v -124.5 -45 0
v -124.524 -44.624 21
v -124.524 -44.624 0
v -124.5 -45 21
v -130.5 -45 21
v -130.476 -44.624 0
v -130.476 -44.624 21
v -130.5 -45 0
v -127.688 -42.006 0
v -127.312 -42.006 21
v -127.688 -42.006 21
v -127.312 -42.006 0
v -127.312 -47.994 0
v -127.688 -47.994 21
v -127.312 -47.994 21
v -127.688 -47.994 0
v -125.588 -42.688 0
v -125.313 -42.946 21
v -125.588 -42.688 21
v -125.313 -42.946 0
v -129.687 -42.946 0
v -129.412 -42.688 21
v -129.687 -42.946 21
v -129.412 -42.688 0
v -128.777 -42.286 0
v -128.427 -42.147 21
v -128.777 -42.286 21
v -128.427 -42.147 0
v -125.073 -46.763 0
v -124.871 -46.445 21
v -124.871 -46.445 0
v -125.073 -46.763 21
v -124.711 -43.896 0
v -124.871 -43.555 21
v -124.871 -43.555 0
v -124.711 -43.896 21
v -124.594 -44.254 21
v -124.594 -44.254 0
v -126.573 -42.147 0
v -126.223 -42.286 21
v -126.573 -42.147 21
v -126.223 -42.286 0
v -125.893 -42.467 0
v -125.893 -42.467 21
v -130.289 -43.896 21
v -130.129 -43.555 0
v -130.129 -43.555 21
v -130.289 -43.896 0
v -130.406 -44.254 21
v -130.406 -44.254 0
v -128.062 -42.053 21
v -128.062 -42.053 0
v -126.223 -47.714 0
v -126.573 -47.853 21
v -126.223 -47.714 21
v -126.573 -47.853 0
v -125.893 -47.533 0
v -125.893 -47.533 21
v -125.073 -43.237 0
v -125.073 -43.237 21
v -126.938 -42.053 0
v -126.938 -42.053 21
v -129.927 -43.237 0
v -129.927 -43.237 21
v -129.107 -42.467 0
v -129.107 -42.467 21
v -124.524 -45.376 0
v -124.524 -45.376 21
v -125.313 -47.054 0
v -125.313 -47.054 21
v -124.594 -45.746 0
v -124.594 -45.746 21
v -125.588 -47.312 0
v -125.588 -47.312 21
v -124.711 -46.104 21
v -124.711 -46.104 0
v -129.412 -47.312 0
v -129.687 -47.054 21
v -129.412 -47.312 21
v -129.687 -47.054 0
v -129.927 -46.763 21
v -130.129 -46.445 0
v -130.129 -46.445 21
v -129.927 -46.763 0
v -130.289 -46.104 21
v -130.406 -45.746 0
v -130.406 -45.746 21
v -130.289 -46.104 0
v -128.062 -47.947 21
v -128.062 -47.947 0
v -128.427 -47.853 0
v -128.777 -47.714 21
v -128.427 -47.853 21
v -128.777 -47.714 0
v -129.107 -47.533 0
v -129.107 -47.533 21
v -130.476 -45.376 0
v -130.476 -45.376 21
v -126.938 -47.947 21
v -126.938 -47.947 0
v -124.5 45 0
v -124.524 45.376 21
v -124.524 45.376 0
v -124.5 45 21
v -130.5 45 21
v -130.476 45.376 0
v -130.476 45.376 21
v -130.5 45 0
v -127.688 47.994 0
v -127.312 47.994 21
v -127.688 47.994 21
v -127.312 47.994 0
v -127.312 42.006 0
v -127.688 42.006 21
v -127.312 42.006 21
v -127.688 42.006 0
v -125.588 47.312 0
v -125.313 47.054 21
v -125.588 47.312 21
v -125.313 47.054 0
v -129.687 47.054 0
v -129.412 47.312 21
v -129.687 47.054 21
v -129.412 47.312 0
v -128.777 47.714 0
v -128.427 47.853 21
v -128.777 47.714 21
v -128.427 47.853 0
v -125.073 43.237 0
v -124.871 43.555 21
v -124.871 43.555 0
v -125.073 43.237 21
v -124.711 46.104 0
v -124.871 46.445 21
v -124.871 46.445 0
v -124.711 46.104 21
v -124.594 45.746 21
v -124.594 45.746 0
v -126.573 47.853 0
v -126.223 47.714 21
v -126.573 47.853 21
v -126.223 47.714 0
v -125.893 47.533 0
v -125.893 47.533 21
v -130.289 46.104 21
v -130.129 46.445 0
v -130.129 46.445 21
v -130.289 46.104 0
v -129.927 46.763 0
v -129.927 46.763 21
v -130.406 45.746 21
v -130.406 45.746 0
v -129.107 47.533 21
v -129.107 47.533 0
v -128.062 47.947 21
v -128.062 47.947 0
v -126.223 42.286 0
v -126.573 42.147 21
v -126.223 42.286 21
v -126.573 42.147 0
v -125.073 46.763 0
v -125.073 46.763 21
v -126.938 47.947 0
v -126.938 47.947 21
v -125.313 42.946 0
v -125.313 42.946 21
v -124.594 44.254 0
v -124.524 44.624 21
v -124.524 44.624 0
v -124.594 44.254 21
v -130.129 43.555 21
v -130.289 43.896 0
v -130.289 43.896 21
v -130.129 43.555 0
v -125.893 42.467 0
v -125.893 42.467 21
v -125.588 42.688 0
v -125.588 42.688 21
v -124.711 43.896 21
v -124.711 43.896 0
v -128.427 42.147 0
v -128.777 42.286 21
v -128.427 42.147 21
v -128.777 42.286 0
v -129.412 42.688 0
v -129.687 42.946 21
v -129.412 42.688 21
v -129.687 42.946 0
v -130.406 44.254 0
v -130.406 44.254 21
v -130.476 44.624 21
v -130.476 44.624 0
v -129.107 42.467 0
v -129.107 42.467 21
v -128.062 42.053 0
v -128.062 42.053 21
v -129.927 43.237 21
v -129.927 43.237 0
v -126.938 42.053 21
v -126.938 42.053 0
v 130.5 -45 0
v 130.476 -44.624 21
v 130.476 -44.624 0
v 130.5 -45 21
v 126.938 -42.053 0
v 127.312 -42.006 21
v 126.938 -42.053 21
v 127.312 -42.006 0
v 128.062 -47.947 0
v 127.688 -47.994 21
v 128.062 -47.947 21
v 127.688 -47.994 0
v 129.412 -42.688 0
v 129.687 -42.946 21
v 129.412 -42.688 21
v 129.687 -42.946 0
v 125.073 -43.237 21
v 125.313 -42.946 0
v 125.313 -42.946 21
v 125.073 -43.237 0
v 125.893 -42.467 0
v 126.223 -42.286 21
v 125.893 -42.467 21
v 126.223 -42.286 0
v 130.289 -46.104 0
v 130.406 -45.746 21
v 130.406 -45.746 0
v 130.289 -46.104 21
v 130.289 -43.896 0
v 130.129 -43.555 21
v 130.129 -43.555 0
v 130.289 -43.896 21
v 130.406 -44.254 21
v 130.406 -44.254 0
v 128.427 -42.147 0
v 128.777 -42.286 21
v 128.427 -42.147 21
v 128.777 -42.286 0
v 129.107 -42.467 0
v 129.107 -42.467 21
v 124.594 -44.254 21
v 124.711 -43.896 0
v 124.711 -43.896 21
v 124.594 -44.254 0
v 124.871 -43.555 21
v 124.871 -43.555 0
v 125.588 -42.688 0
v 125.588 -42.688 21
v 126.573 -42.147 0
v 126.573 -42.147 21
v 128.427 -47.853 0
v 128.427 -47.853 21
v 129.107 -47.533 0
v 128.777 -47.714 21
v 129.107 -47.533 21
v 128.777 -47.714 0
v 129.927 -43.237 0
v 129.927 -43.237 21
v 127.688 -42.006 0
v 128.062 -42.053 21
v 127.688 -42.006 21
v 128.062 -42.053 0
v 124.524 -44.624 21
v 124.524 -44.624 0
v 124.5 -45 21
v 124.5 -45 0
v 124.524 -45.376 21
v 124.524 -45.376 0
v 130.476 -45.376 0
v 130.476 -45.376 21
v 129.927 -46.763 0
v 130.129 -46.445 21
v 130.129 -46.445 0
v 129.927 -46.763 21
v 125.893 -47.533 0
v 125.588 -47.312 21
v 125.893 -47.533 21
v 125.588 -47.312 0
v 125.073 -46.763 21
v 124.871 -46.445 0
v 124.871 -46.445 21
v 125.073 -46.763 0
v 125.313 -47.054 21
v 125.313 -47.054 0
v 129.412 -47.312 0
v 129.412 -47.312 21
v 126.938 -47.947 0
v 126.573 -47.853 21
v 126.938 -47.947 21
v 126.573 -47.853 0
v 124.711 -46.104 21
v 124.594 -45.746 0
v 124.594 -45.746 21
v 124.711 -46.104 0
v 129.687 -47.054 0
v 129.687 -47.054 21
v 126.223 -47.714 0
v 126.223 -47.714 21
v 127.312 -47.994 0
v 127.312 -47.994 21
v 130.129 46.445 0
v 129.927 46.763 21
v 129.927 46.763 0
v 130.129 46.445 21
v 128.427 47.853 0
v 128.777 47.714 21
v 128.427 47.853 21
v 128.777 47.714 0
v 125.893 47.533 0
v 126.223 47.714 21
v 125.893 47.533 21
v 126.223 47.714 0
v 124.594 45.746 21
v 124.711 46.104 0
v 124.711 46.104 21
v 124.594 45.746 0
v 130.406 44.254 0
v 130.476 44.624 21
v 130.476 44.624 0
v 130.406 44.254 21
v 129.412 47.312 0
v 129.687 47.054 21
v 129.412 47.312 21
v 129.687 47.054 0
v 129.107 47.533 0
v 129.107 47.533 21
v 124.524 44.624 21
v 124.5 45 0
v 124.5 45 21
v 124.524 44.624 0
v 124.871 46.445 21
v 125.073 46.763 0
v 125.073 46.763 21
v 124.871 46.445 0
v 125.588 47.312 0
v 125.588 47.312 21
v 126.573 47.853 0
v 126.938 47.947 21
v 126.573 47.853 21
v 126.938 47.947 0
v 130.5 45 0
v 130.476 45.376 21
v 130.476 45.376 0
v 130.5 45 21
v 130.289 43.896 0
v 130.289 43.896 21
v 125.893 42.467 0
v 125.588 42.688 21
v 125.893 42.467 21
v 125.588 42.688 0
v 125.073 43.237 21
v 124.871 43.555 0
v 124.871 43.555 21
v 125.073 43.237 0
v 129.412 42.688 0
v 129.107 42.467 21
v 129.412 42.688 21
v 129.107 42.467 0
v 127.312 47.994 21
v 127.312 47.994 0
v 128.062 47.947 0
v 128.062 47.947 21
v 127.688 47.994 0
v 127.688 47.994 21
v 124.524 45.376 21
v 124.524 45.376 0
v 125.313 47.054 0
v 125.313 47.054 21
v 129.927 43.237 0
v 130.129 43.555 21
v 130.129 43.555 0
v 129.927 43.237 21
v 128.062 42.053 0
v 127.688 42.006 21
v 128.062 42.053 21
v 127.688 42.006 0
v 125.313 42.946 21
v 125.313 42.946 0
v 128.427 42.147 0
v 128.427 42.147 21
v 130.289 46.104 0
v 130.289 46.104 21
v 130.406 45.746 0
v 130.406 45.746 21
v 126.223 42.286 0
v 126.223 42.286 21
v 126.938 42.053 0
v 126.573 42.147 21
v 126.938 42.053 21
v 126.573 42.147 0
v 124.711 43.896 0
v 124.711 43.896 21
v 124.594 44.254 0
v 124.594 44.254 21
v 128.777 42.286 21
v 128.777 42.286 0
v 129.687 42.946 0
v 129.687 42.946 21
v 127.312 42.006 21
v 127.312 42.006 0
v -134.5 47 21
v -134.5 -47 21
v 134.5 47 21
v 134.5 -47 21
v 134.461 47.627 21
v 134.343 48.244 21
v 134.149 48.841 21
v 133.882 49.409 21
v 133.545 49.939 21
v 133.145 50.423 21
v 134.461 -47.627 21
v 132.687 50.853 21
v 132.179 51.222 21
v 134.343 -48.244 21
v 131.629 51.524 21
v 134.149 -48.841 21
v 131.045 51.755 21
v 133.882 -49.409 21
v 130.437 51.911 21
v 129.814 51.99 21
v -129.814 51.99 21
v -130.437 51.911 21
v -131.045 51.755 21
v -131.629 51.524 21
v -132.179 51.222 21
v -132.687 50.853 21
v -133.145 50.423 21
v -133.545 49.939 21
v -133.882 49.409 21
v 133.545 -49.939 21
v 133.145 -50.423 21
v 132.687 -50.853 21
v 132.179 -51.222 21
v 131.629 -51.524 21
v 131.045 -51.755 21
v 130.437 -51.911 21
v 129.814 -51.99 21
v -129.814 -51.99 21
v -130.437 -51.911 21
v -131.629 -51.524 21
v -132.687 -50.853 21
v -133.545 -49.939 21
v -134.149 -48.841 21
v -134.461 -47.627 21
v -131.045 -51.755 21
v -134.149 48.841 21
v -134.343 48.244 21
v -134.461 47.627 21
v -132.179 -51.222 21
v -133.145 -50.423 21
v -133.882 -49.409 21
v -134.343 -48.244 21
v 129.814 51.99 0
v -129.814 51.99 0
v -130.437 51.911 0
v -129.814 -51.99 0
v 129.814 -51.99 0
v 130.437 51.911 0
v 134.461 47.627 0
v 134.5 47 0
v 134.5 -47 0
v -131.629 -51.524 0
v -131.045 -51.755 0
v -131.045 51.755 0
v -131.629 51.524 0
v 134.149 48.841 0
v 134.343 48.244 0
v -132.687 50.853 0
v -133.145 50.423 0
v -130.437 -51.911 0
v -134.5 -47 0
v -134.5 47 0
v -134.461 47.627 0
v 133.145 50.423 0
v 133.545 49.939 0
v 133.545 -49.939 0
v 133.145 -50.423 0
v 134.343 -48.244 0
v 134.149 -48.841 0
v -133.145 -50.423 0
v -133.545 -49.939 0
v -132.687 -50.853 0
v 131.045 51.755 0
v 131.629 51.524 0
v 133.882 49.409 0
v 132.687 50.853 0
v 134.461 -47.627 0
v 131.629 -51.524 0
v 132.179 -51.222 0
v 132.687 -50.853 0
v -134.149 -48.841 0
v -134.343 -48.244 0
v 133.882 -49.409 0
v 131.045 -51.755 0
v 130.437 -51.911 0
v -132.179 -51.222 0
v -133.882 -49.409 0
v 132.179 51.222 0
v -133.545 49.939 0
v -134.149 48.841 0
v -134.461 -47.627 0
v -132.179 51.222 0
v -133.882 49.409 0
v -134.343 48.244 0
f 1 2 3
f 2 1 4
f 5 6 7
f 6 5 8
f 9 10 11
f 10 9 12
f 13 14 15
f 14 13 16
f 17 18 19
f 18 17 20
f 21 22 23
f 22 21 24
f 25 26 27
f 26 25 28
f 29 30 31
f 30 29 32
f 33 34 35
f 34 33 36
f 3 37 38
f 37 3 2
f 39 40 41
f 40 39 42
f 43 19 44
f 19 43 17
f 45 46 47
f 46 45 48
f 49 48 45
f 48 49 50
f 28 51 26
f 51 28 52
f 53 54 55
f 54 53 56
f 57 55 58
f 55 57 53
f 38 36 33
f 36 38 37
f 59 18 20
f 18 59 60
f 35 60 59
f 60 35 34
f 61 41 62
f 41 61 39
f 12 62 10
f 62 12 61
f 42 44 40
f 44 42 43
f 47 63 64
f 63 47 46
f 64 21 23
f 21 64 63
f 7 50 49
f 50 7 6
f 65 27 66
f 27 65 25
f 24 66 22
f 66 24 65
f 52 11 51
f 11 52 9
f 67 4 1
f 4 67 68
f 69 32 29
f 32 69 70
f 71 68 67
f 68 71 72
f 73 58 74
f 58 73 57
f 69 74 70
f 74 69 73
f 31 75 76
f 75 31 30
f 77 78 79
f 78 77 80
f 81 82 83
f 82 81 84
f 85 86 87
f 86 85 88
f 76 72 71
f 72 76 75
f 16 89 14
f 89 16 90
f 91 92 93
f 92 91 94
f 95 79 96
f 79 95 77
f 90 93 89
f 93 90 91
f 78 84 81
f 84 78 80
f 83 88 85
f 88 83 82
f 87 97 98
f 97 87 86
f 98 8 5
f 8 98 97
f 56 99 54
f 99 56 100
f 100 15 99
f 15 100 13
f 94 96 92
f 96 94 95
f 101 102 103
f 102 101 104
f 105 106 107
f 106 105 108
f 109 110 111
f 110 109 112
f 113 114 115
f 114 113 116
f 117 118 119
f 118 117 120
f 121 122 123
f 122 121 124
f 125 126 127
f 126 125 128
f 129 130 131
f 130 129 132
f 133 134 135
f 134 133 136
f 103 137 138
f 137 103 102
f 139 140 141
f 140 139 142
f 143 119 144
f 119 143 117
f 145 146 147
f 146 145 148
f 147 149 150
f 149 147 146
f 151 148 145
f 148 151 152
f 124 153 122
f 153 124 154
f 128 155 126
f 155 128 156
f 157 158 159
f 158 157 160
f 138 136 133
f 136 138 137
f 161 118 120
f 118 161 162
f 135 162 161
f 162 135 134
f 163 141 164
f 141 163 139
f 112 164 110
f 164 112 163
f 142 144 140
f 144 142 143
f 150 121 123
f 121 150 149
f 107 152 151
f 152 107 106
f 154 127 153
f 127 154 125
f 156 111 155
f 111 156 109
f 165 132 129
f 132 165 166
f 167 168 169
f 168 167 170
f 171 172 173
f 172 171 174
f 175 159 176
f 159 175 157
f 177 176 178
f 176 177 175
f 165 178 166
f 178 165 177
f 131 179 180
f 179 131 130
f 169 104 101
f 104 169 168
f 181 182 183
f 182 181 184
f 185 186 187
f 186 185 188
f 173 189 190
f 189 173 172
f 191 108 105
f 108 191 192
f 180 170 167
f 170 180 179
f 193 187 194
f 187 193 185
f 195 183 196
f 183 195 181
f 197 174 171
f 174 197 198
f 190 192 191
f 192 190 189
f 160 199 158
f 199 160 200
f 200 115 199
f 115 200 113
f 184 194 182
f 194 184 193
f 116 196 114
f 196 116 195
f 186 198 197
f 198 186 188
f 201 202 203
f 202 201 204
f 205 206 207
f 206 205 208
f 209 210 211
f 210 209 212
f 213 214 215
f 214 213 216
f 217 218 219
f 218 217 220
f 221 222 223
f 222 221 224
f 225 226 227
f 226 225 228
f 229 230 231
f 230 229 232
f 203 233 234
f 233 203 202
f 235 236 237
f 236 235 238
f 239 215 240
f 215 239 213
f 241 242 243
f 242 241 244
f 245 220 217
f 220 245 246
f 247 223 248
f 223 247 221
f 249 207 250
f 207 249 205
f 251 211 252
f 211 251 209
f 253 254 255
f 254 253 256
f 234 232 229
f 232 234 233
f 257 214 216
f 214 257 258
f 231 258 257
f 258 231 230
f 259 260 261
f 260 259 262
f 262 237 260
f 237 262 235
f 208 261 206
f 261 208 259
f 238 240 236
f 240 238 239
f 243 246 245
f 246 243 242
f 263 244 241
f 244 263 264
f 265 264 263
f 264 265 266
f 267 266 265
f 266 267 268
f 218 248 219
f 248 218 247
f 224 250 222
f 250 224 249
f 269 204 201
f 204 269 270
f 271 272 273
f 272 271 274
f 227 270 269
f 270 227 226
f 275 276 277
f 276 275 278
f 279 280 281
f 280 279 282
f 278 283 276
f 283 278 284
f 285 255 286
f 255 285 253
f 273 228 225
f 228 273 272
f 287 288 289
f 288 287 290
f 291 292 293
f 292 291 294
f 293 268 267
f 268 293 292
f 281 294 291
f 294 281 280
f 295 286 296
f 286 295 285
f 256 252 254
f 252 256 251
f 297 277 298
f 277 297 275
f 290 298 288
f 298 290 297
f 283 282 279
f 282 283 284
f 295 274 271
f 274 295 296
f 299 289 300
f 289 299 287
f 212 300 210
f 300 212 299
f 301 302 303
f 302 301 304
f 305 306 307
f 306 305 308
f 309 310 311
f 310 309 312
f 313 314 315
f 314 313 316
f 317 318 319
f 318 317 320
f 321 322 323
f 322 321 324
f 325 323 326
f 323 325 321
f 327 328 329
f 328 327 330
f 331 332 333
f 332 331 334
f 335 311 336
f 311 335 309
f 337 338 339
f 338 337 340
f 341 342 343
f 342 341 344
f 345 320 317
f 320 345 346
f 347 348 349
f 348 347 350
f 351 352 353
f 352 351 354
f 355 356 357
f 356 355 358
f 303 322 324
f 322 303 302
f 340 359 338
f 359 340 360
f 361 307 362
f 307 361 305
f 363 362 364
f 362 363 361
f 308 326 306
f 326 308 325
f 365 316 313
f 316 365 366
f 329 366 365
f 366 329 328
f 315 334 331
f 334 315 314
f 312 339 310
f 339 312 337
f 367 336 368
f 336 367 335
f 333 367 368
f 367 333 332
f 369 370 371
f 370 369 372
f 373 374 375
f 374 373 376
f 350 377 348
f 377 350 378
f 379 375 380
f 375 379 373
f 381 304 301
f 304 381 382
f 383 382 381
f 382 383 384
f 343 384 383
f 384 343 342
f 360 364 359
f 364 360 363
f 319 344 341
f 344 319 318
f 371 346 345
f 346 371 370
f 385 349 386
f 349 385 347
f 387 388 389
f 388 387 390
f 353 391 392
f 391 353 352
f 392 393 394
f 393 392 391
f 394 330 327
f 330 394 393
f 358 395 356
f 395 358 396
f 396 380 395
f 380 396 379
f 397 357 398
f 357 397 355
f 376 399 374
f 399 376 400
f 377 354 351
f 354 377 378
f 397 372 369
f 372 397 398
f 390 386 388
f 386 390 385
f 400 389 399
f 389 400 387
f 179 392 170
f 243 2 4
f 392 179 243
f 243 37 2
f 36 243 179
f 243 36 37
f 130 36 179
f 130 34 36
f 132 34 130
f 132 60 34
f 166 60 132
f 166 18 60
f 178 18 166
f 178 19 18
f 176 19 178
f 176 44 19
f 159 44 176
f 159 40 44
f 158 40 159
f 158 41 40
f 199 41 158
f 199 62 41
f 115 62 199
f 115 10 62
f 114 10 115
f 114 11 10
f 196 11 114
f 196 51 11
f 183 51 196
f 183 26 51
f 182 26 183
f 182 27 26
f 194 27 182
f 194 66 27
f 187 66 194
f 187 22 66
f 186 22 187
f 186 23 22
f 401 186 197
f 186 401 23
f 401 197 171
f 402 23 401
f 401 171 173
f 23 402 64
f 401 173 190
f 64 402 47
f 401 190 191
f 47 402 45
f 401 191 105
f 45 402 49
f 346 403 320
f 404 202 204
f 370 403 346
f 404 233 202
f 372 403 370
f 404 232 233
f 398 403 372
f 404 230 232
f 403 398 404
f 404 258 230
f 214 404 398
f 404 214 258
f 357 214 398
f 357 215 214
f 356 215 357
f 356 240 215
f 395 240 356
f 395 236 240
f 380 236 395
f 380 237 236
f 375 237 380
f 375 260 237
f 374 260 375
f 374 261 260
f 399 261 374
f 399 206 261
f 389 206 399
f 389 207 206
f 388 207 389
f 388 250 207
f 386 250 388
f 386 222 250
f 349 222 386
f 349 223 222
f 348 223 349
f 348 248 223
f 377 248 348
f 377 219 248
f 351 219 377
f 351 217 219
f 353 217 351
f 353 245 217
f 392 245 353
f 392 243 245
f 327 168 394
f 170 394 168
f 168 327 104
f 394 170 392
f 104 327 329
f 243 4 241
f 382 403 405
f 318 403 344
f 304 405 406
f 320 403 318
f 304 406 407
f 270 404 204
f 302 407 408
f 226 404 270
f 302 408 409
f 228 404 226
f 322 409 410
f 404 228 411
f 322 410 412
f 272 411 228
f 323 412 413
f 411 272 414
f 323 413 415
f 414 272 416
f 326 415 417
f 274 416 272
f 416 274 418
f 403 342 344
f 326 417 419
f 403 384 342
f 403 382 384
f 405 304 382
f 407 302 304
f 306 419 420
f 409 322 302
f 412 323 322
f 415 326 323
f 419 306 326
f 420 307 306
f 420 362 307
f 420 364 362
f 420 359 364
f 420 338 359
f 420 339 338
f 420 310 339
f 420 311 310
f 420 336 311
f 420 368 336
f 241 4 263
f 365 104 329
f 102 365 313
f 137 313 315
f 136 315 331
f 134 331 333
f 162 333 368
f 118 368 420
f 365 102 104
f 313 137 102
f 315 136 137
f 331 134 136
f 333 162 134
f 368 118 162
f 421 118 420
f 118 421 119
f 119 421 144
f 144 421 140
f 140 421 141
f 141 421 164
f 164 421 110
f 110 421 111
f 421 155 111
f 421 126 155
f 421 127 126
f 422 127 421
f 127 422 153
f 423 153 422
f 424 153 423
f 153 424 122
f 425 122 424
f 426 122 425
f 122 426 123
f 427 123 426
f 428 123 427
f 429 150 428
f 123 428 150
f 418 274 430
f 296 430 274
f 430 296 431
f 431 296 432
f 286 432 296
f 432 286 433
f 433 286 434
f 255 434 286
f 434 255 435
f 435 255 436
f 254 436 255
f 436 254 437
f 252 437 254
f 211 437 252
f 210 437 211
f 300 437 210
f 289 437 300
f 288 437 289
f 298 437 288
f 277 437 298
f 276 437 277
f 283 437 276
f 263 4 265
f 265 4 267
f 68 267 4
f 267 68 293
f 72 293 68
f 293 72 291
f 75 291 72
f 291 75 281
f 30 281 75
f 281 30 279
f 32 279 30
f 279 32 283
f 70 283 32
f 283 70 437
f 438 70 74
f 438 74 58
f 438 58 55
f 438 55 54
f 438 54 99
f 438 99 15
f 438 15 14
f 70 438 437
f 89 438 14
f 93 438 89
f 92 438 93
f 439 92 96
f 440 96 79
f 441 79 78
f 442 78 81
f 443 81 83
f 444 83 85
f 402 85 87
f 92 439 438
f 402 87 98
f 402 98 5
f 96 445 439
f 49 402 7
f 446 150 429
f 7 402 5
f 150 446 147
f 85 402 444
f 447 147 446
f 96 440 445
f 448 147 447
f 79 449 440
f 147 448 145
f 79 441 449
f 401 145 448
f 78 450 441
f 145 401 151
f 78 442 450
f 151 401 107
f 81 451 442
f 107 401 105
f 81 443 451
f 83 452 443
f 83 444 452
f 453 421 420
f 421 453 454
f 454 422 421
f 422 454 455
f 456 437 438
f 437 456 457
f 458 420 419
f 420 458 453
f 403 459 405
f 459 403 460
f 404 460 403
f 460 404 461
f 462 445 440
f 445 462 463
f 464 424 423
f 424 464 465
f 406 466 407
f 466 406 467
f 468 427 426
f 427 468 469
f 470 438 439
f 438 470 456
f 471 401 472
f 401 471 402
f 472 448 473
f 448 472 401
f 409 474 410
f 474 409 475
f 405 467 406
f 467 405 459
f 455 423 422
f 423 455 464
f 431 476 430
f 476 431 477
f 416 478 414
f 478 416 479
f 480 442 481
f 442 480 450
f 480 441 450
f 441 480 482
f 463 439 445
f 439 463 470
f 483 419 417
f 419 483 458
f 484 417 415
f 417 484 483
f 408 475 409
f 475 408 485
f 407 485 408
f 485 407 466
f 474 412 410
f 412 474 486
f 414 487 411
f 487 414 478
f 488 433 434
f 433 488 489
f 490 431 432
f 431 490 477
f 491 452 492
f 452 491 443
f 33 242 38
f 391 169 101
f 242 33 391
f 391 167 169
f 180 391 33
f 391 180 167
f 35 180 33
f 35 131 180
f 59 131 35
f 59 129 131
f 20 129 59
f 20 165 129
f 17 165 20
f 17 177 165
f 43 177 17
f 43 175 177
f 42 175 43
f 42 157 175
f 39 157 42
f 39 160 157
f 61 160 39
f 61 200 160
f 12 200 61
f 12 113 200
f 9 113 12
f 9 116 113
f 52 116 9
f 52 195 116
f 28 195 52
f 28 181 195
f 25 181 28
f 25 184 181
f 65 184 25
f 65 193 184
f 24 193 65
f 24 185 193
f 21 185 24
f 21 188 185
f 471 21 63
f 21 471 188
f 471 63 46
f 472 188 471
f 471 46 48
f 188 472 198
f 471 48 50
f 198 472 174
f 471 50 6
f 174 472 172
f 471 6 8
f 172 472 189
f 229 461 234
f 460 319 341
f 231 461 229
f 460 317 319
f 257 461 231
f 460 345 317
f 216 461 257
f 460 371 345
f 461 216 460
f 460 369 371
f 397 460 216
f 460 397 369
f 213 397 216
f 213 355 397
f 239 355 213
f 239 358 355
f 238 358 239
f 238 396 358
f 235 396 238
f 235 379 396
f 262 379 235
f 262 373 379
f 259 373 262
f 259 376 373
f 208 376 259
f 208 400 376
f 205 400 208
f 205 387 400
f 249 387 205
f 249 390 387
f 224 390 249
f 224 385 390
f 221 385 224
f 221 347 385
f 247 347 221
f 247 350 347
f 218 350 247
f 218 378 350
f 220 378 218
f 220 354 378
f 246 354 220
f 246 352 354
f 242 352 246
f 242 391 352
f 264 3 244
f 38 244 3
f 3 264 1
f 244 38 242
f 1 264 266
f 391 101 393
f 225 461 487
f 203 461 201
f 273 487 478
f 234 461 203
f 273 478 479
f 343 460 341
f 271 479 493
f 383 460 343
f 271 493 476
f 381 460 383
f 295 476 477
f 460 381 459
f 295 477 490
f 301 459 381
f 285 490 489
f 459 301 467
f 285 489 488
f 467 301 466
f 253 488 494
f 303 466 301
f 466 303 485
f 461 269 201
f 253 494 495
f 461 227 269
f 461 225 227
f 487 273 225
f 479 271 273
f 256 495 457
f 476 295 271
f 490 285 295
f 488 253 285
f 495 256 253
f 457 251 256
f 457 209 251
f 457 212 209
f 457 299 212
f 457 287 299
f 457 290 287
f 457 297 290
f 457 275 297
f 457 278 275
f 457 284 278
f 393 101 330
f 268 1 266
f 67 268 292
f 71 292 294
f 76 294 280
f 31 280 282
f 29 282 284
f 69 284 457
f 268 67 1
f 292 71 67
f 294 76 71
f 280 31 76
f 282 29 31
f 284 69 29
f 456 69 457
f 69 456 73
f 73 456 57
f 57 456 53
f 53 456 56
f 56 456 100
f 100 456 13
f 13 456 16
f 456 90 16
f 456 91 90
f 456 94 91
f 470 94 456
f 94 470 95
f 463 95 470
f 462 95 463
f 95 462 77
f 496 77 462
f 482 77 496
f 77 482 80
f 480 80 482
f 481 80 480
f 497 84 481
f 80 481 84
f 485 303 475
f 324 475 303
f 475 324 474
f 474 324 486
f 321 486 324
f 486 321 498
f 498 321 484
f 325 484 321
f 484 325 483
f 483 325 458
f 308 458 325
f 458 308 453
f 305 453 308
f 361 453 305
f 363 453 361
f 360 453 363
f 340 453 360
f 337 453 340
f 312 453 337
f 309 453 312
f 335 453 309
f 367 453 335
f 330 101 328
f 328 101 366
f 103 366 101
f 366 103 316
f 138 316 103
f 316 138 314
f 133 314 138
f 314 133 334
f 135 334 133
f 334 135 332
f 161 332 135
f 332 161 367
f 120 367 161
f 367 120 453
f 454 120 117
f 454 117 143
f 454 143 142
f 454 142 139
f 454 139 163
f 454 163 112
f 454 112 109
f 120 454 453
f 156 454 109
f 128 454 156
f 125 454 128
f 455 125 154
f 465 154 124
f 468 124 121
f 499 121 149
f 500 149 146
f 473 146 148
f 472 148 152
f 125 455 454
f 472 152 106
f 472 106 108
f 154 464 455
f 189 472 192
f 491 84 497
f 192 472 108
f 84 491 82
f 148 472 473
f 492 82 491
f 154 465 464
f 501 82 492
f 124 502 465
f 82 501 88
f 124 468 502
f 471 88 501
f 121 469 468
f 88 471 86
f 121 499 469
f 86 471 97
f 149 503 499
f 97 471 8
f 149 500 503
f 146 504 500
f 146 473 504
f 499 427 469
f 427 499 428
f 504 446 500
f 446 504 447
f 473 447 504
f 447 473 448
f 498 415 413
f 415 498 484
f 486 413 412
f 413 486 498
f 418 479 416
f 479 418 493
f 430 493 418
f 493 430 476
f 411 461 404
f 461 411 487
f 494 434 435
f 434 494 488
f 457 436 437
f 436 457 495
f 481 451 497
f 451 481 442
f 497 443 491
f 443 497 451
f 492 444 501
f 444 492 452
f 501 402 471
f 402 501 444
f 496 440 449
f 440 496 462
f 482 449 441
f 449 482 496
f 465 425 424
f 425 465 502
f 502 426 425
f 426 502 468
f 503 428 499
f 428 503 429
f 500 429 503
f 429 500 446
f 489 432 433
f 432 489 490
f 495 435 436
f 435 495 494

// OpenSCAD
$fn = 50;


difference() {
	union() {
		hull() {
			translate(v = [-129.5000000000, 47.0000000000, 0]) {
				cylinder(h = 21, r = 5);
			}
			translate(v = [129.5000000000, 47.0000000000, 0]) {
				cylinder(h = 21, r = 5);
			}
			translate(v = [-129.5000000000, -47.0000000000, 0]) {
				cylinder(h = 21, r = 5);
			}
			translate(v = [129.5000000000, -47.0000000000, 0]) {
				cylinder(h = 21, r = 5);
			}
		}
	}
	union() {
		translate(v = [-127.5000000000, -45.0000000000, -100.0000000000]) {
			cylinder(h = 200, r = 3.0000000000);
		}
		translate(v = [-127.5000000000, 45.0000000000, -100.0000000000]) {
			cylinder(h = 200, r = 3.0000000000);
		}
		translate(v = [127.5000000000, -45.0000000000, -100.0000000000]) {
			cylinder(h = 200, r = 3.0000000000);
		}
		translate(v = [127.5000000000, 45.0000000000, -100.0000000000]) {
			cylinder(h = 200, r = 3.0000000000);
		}
	}
}
